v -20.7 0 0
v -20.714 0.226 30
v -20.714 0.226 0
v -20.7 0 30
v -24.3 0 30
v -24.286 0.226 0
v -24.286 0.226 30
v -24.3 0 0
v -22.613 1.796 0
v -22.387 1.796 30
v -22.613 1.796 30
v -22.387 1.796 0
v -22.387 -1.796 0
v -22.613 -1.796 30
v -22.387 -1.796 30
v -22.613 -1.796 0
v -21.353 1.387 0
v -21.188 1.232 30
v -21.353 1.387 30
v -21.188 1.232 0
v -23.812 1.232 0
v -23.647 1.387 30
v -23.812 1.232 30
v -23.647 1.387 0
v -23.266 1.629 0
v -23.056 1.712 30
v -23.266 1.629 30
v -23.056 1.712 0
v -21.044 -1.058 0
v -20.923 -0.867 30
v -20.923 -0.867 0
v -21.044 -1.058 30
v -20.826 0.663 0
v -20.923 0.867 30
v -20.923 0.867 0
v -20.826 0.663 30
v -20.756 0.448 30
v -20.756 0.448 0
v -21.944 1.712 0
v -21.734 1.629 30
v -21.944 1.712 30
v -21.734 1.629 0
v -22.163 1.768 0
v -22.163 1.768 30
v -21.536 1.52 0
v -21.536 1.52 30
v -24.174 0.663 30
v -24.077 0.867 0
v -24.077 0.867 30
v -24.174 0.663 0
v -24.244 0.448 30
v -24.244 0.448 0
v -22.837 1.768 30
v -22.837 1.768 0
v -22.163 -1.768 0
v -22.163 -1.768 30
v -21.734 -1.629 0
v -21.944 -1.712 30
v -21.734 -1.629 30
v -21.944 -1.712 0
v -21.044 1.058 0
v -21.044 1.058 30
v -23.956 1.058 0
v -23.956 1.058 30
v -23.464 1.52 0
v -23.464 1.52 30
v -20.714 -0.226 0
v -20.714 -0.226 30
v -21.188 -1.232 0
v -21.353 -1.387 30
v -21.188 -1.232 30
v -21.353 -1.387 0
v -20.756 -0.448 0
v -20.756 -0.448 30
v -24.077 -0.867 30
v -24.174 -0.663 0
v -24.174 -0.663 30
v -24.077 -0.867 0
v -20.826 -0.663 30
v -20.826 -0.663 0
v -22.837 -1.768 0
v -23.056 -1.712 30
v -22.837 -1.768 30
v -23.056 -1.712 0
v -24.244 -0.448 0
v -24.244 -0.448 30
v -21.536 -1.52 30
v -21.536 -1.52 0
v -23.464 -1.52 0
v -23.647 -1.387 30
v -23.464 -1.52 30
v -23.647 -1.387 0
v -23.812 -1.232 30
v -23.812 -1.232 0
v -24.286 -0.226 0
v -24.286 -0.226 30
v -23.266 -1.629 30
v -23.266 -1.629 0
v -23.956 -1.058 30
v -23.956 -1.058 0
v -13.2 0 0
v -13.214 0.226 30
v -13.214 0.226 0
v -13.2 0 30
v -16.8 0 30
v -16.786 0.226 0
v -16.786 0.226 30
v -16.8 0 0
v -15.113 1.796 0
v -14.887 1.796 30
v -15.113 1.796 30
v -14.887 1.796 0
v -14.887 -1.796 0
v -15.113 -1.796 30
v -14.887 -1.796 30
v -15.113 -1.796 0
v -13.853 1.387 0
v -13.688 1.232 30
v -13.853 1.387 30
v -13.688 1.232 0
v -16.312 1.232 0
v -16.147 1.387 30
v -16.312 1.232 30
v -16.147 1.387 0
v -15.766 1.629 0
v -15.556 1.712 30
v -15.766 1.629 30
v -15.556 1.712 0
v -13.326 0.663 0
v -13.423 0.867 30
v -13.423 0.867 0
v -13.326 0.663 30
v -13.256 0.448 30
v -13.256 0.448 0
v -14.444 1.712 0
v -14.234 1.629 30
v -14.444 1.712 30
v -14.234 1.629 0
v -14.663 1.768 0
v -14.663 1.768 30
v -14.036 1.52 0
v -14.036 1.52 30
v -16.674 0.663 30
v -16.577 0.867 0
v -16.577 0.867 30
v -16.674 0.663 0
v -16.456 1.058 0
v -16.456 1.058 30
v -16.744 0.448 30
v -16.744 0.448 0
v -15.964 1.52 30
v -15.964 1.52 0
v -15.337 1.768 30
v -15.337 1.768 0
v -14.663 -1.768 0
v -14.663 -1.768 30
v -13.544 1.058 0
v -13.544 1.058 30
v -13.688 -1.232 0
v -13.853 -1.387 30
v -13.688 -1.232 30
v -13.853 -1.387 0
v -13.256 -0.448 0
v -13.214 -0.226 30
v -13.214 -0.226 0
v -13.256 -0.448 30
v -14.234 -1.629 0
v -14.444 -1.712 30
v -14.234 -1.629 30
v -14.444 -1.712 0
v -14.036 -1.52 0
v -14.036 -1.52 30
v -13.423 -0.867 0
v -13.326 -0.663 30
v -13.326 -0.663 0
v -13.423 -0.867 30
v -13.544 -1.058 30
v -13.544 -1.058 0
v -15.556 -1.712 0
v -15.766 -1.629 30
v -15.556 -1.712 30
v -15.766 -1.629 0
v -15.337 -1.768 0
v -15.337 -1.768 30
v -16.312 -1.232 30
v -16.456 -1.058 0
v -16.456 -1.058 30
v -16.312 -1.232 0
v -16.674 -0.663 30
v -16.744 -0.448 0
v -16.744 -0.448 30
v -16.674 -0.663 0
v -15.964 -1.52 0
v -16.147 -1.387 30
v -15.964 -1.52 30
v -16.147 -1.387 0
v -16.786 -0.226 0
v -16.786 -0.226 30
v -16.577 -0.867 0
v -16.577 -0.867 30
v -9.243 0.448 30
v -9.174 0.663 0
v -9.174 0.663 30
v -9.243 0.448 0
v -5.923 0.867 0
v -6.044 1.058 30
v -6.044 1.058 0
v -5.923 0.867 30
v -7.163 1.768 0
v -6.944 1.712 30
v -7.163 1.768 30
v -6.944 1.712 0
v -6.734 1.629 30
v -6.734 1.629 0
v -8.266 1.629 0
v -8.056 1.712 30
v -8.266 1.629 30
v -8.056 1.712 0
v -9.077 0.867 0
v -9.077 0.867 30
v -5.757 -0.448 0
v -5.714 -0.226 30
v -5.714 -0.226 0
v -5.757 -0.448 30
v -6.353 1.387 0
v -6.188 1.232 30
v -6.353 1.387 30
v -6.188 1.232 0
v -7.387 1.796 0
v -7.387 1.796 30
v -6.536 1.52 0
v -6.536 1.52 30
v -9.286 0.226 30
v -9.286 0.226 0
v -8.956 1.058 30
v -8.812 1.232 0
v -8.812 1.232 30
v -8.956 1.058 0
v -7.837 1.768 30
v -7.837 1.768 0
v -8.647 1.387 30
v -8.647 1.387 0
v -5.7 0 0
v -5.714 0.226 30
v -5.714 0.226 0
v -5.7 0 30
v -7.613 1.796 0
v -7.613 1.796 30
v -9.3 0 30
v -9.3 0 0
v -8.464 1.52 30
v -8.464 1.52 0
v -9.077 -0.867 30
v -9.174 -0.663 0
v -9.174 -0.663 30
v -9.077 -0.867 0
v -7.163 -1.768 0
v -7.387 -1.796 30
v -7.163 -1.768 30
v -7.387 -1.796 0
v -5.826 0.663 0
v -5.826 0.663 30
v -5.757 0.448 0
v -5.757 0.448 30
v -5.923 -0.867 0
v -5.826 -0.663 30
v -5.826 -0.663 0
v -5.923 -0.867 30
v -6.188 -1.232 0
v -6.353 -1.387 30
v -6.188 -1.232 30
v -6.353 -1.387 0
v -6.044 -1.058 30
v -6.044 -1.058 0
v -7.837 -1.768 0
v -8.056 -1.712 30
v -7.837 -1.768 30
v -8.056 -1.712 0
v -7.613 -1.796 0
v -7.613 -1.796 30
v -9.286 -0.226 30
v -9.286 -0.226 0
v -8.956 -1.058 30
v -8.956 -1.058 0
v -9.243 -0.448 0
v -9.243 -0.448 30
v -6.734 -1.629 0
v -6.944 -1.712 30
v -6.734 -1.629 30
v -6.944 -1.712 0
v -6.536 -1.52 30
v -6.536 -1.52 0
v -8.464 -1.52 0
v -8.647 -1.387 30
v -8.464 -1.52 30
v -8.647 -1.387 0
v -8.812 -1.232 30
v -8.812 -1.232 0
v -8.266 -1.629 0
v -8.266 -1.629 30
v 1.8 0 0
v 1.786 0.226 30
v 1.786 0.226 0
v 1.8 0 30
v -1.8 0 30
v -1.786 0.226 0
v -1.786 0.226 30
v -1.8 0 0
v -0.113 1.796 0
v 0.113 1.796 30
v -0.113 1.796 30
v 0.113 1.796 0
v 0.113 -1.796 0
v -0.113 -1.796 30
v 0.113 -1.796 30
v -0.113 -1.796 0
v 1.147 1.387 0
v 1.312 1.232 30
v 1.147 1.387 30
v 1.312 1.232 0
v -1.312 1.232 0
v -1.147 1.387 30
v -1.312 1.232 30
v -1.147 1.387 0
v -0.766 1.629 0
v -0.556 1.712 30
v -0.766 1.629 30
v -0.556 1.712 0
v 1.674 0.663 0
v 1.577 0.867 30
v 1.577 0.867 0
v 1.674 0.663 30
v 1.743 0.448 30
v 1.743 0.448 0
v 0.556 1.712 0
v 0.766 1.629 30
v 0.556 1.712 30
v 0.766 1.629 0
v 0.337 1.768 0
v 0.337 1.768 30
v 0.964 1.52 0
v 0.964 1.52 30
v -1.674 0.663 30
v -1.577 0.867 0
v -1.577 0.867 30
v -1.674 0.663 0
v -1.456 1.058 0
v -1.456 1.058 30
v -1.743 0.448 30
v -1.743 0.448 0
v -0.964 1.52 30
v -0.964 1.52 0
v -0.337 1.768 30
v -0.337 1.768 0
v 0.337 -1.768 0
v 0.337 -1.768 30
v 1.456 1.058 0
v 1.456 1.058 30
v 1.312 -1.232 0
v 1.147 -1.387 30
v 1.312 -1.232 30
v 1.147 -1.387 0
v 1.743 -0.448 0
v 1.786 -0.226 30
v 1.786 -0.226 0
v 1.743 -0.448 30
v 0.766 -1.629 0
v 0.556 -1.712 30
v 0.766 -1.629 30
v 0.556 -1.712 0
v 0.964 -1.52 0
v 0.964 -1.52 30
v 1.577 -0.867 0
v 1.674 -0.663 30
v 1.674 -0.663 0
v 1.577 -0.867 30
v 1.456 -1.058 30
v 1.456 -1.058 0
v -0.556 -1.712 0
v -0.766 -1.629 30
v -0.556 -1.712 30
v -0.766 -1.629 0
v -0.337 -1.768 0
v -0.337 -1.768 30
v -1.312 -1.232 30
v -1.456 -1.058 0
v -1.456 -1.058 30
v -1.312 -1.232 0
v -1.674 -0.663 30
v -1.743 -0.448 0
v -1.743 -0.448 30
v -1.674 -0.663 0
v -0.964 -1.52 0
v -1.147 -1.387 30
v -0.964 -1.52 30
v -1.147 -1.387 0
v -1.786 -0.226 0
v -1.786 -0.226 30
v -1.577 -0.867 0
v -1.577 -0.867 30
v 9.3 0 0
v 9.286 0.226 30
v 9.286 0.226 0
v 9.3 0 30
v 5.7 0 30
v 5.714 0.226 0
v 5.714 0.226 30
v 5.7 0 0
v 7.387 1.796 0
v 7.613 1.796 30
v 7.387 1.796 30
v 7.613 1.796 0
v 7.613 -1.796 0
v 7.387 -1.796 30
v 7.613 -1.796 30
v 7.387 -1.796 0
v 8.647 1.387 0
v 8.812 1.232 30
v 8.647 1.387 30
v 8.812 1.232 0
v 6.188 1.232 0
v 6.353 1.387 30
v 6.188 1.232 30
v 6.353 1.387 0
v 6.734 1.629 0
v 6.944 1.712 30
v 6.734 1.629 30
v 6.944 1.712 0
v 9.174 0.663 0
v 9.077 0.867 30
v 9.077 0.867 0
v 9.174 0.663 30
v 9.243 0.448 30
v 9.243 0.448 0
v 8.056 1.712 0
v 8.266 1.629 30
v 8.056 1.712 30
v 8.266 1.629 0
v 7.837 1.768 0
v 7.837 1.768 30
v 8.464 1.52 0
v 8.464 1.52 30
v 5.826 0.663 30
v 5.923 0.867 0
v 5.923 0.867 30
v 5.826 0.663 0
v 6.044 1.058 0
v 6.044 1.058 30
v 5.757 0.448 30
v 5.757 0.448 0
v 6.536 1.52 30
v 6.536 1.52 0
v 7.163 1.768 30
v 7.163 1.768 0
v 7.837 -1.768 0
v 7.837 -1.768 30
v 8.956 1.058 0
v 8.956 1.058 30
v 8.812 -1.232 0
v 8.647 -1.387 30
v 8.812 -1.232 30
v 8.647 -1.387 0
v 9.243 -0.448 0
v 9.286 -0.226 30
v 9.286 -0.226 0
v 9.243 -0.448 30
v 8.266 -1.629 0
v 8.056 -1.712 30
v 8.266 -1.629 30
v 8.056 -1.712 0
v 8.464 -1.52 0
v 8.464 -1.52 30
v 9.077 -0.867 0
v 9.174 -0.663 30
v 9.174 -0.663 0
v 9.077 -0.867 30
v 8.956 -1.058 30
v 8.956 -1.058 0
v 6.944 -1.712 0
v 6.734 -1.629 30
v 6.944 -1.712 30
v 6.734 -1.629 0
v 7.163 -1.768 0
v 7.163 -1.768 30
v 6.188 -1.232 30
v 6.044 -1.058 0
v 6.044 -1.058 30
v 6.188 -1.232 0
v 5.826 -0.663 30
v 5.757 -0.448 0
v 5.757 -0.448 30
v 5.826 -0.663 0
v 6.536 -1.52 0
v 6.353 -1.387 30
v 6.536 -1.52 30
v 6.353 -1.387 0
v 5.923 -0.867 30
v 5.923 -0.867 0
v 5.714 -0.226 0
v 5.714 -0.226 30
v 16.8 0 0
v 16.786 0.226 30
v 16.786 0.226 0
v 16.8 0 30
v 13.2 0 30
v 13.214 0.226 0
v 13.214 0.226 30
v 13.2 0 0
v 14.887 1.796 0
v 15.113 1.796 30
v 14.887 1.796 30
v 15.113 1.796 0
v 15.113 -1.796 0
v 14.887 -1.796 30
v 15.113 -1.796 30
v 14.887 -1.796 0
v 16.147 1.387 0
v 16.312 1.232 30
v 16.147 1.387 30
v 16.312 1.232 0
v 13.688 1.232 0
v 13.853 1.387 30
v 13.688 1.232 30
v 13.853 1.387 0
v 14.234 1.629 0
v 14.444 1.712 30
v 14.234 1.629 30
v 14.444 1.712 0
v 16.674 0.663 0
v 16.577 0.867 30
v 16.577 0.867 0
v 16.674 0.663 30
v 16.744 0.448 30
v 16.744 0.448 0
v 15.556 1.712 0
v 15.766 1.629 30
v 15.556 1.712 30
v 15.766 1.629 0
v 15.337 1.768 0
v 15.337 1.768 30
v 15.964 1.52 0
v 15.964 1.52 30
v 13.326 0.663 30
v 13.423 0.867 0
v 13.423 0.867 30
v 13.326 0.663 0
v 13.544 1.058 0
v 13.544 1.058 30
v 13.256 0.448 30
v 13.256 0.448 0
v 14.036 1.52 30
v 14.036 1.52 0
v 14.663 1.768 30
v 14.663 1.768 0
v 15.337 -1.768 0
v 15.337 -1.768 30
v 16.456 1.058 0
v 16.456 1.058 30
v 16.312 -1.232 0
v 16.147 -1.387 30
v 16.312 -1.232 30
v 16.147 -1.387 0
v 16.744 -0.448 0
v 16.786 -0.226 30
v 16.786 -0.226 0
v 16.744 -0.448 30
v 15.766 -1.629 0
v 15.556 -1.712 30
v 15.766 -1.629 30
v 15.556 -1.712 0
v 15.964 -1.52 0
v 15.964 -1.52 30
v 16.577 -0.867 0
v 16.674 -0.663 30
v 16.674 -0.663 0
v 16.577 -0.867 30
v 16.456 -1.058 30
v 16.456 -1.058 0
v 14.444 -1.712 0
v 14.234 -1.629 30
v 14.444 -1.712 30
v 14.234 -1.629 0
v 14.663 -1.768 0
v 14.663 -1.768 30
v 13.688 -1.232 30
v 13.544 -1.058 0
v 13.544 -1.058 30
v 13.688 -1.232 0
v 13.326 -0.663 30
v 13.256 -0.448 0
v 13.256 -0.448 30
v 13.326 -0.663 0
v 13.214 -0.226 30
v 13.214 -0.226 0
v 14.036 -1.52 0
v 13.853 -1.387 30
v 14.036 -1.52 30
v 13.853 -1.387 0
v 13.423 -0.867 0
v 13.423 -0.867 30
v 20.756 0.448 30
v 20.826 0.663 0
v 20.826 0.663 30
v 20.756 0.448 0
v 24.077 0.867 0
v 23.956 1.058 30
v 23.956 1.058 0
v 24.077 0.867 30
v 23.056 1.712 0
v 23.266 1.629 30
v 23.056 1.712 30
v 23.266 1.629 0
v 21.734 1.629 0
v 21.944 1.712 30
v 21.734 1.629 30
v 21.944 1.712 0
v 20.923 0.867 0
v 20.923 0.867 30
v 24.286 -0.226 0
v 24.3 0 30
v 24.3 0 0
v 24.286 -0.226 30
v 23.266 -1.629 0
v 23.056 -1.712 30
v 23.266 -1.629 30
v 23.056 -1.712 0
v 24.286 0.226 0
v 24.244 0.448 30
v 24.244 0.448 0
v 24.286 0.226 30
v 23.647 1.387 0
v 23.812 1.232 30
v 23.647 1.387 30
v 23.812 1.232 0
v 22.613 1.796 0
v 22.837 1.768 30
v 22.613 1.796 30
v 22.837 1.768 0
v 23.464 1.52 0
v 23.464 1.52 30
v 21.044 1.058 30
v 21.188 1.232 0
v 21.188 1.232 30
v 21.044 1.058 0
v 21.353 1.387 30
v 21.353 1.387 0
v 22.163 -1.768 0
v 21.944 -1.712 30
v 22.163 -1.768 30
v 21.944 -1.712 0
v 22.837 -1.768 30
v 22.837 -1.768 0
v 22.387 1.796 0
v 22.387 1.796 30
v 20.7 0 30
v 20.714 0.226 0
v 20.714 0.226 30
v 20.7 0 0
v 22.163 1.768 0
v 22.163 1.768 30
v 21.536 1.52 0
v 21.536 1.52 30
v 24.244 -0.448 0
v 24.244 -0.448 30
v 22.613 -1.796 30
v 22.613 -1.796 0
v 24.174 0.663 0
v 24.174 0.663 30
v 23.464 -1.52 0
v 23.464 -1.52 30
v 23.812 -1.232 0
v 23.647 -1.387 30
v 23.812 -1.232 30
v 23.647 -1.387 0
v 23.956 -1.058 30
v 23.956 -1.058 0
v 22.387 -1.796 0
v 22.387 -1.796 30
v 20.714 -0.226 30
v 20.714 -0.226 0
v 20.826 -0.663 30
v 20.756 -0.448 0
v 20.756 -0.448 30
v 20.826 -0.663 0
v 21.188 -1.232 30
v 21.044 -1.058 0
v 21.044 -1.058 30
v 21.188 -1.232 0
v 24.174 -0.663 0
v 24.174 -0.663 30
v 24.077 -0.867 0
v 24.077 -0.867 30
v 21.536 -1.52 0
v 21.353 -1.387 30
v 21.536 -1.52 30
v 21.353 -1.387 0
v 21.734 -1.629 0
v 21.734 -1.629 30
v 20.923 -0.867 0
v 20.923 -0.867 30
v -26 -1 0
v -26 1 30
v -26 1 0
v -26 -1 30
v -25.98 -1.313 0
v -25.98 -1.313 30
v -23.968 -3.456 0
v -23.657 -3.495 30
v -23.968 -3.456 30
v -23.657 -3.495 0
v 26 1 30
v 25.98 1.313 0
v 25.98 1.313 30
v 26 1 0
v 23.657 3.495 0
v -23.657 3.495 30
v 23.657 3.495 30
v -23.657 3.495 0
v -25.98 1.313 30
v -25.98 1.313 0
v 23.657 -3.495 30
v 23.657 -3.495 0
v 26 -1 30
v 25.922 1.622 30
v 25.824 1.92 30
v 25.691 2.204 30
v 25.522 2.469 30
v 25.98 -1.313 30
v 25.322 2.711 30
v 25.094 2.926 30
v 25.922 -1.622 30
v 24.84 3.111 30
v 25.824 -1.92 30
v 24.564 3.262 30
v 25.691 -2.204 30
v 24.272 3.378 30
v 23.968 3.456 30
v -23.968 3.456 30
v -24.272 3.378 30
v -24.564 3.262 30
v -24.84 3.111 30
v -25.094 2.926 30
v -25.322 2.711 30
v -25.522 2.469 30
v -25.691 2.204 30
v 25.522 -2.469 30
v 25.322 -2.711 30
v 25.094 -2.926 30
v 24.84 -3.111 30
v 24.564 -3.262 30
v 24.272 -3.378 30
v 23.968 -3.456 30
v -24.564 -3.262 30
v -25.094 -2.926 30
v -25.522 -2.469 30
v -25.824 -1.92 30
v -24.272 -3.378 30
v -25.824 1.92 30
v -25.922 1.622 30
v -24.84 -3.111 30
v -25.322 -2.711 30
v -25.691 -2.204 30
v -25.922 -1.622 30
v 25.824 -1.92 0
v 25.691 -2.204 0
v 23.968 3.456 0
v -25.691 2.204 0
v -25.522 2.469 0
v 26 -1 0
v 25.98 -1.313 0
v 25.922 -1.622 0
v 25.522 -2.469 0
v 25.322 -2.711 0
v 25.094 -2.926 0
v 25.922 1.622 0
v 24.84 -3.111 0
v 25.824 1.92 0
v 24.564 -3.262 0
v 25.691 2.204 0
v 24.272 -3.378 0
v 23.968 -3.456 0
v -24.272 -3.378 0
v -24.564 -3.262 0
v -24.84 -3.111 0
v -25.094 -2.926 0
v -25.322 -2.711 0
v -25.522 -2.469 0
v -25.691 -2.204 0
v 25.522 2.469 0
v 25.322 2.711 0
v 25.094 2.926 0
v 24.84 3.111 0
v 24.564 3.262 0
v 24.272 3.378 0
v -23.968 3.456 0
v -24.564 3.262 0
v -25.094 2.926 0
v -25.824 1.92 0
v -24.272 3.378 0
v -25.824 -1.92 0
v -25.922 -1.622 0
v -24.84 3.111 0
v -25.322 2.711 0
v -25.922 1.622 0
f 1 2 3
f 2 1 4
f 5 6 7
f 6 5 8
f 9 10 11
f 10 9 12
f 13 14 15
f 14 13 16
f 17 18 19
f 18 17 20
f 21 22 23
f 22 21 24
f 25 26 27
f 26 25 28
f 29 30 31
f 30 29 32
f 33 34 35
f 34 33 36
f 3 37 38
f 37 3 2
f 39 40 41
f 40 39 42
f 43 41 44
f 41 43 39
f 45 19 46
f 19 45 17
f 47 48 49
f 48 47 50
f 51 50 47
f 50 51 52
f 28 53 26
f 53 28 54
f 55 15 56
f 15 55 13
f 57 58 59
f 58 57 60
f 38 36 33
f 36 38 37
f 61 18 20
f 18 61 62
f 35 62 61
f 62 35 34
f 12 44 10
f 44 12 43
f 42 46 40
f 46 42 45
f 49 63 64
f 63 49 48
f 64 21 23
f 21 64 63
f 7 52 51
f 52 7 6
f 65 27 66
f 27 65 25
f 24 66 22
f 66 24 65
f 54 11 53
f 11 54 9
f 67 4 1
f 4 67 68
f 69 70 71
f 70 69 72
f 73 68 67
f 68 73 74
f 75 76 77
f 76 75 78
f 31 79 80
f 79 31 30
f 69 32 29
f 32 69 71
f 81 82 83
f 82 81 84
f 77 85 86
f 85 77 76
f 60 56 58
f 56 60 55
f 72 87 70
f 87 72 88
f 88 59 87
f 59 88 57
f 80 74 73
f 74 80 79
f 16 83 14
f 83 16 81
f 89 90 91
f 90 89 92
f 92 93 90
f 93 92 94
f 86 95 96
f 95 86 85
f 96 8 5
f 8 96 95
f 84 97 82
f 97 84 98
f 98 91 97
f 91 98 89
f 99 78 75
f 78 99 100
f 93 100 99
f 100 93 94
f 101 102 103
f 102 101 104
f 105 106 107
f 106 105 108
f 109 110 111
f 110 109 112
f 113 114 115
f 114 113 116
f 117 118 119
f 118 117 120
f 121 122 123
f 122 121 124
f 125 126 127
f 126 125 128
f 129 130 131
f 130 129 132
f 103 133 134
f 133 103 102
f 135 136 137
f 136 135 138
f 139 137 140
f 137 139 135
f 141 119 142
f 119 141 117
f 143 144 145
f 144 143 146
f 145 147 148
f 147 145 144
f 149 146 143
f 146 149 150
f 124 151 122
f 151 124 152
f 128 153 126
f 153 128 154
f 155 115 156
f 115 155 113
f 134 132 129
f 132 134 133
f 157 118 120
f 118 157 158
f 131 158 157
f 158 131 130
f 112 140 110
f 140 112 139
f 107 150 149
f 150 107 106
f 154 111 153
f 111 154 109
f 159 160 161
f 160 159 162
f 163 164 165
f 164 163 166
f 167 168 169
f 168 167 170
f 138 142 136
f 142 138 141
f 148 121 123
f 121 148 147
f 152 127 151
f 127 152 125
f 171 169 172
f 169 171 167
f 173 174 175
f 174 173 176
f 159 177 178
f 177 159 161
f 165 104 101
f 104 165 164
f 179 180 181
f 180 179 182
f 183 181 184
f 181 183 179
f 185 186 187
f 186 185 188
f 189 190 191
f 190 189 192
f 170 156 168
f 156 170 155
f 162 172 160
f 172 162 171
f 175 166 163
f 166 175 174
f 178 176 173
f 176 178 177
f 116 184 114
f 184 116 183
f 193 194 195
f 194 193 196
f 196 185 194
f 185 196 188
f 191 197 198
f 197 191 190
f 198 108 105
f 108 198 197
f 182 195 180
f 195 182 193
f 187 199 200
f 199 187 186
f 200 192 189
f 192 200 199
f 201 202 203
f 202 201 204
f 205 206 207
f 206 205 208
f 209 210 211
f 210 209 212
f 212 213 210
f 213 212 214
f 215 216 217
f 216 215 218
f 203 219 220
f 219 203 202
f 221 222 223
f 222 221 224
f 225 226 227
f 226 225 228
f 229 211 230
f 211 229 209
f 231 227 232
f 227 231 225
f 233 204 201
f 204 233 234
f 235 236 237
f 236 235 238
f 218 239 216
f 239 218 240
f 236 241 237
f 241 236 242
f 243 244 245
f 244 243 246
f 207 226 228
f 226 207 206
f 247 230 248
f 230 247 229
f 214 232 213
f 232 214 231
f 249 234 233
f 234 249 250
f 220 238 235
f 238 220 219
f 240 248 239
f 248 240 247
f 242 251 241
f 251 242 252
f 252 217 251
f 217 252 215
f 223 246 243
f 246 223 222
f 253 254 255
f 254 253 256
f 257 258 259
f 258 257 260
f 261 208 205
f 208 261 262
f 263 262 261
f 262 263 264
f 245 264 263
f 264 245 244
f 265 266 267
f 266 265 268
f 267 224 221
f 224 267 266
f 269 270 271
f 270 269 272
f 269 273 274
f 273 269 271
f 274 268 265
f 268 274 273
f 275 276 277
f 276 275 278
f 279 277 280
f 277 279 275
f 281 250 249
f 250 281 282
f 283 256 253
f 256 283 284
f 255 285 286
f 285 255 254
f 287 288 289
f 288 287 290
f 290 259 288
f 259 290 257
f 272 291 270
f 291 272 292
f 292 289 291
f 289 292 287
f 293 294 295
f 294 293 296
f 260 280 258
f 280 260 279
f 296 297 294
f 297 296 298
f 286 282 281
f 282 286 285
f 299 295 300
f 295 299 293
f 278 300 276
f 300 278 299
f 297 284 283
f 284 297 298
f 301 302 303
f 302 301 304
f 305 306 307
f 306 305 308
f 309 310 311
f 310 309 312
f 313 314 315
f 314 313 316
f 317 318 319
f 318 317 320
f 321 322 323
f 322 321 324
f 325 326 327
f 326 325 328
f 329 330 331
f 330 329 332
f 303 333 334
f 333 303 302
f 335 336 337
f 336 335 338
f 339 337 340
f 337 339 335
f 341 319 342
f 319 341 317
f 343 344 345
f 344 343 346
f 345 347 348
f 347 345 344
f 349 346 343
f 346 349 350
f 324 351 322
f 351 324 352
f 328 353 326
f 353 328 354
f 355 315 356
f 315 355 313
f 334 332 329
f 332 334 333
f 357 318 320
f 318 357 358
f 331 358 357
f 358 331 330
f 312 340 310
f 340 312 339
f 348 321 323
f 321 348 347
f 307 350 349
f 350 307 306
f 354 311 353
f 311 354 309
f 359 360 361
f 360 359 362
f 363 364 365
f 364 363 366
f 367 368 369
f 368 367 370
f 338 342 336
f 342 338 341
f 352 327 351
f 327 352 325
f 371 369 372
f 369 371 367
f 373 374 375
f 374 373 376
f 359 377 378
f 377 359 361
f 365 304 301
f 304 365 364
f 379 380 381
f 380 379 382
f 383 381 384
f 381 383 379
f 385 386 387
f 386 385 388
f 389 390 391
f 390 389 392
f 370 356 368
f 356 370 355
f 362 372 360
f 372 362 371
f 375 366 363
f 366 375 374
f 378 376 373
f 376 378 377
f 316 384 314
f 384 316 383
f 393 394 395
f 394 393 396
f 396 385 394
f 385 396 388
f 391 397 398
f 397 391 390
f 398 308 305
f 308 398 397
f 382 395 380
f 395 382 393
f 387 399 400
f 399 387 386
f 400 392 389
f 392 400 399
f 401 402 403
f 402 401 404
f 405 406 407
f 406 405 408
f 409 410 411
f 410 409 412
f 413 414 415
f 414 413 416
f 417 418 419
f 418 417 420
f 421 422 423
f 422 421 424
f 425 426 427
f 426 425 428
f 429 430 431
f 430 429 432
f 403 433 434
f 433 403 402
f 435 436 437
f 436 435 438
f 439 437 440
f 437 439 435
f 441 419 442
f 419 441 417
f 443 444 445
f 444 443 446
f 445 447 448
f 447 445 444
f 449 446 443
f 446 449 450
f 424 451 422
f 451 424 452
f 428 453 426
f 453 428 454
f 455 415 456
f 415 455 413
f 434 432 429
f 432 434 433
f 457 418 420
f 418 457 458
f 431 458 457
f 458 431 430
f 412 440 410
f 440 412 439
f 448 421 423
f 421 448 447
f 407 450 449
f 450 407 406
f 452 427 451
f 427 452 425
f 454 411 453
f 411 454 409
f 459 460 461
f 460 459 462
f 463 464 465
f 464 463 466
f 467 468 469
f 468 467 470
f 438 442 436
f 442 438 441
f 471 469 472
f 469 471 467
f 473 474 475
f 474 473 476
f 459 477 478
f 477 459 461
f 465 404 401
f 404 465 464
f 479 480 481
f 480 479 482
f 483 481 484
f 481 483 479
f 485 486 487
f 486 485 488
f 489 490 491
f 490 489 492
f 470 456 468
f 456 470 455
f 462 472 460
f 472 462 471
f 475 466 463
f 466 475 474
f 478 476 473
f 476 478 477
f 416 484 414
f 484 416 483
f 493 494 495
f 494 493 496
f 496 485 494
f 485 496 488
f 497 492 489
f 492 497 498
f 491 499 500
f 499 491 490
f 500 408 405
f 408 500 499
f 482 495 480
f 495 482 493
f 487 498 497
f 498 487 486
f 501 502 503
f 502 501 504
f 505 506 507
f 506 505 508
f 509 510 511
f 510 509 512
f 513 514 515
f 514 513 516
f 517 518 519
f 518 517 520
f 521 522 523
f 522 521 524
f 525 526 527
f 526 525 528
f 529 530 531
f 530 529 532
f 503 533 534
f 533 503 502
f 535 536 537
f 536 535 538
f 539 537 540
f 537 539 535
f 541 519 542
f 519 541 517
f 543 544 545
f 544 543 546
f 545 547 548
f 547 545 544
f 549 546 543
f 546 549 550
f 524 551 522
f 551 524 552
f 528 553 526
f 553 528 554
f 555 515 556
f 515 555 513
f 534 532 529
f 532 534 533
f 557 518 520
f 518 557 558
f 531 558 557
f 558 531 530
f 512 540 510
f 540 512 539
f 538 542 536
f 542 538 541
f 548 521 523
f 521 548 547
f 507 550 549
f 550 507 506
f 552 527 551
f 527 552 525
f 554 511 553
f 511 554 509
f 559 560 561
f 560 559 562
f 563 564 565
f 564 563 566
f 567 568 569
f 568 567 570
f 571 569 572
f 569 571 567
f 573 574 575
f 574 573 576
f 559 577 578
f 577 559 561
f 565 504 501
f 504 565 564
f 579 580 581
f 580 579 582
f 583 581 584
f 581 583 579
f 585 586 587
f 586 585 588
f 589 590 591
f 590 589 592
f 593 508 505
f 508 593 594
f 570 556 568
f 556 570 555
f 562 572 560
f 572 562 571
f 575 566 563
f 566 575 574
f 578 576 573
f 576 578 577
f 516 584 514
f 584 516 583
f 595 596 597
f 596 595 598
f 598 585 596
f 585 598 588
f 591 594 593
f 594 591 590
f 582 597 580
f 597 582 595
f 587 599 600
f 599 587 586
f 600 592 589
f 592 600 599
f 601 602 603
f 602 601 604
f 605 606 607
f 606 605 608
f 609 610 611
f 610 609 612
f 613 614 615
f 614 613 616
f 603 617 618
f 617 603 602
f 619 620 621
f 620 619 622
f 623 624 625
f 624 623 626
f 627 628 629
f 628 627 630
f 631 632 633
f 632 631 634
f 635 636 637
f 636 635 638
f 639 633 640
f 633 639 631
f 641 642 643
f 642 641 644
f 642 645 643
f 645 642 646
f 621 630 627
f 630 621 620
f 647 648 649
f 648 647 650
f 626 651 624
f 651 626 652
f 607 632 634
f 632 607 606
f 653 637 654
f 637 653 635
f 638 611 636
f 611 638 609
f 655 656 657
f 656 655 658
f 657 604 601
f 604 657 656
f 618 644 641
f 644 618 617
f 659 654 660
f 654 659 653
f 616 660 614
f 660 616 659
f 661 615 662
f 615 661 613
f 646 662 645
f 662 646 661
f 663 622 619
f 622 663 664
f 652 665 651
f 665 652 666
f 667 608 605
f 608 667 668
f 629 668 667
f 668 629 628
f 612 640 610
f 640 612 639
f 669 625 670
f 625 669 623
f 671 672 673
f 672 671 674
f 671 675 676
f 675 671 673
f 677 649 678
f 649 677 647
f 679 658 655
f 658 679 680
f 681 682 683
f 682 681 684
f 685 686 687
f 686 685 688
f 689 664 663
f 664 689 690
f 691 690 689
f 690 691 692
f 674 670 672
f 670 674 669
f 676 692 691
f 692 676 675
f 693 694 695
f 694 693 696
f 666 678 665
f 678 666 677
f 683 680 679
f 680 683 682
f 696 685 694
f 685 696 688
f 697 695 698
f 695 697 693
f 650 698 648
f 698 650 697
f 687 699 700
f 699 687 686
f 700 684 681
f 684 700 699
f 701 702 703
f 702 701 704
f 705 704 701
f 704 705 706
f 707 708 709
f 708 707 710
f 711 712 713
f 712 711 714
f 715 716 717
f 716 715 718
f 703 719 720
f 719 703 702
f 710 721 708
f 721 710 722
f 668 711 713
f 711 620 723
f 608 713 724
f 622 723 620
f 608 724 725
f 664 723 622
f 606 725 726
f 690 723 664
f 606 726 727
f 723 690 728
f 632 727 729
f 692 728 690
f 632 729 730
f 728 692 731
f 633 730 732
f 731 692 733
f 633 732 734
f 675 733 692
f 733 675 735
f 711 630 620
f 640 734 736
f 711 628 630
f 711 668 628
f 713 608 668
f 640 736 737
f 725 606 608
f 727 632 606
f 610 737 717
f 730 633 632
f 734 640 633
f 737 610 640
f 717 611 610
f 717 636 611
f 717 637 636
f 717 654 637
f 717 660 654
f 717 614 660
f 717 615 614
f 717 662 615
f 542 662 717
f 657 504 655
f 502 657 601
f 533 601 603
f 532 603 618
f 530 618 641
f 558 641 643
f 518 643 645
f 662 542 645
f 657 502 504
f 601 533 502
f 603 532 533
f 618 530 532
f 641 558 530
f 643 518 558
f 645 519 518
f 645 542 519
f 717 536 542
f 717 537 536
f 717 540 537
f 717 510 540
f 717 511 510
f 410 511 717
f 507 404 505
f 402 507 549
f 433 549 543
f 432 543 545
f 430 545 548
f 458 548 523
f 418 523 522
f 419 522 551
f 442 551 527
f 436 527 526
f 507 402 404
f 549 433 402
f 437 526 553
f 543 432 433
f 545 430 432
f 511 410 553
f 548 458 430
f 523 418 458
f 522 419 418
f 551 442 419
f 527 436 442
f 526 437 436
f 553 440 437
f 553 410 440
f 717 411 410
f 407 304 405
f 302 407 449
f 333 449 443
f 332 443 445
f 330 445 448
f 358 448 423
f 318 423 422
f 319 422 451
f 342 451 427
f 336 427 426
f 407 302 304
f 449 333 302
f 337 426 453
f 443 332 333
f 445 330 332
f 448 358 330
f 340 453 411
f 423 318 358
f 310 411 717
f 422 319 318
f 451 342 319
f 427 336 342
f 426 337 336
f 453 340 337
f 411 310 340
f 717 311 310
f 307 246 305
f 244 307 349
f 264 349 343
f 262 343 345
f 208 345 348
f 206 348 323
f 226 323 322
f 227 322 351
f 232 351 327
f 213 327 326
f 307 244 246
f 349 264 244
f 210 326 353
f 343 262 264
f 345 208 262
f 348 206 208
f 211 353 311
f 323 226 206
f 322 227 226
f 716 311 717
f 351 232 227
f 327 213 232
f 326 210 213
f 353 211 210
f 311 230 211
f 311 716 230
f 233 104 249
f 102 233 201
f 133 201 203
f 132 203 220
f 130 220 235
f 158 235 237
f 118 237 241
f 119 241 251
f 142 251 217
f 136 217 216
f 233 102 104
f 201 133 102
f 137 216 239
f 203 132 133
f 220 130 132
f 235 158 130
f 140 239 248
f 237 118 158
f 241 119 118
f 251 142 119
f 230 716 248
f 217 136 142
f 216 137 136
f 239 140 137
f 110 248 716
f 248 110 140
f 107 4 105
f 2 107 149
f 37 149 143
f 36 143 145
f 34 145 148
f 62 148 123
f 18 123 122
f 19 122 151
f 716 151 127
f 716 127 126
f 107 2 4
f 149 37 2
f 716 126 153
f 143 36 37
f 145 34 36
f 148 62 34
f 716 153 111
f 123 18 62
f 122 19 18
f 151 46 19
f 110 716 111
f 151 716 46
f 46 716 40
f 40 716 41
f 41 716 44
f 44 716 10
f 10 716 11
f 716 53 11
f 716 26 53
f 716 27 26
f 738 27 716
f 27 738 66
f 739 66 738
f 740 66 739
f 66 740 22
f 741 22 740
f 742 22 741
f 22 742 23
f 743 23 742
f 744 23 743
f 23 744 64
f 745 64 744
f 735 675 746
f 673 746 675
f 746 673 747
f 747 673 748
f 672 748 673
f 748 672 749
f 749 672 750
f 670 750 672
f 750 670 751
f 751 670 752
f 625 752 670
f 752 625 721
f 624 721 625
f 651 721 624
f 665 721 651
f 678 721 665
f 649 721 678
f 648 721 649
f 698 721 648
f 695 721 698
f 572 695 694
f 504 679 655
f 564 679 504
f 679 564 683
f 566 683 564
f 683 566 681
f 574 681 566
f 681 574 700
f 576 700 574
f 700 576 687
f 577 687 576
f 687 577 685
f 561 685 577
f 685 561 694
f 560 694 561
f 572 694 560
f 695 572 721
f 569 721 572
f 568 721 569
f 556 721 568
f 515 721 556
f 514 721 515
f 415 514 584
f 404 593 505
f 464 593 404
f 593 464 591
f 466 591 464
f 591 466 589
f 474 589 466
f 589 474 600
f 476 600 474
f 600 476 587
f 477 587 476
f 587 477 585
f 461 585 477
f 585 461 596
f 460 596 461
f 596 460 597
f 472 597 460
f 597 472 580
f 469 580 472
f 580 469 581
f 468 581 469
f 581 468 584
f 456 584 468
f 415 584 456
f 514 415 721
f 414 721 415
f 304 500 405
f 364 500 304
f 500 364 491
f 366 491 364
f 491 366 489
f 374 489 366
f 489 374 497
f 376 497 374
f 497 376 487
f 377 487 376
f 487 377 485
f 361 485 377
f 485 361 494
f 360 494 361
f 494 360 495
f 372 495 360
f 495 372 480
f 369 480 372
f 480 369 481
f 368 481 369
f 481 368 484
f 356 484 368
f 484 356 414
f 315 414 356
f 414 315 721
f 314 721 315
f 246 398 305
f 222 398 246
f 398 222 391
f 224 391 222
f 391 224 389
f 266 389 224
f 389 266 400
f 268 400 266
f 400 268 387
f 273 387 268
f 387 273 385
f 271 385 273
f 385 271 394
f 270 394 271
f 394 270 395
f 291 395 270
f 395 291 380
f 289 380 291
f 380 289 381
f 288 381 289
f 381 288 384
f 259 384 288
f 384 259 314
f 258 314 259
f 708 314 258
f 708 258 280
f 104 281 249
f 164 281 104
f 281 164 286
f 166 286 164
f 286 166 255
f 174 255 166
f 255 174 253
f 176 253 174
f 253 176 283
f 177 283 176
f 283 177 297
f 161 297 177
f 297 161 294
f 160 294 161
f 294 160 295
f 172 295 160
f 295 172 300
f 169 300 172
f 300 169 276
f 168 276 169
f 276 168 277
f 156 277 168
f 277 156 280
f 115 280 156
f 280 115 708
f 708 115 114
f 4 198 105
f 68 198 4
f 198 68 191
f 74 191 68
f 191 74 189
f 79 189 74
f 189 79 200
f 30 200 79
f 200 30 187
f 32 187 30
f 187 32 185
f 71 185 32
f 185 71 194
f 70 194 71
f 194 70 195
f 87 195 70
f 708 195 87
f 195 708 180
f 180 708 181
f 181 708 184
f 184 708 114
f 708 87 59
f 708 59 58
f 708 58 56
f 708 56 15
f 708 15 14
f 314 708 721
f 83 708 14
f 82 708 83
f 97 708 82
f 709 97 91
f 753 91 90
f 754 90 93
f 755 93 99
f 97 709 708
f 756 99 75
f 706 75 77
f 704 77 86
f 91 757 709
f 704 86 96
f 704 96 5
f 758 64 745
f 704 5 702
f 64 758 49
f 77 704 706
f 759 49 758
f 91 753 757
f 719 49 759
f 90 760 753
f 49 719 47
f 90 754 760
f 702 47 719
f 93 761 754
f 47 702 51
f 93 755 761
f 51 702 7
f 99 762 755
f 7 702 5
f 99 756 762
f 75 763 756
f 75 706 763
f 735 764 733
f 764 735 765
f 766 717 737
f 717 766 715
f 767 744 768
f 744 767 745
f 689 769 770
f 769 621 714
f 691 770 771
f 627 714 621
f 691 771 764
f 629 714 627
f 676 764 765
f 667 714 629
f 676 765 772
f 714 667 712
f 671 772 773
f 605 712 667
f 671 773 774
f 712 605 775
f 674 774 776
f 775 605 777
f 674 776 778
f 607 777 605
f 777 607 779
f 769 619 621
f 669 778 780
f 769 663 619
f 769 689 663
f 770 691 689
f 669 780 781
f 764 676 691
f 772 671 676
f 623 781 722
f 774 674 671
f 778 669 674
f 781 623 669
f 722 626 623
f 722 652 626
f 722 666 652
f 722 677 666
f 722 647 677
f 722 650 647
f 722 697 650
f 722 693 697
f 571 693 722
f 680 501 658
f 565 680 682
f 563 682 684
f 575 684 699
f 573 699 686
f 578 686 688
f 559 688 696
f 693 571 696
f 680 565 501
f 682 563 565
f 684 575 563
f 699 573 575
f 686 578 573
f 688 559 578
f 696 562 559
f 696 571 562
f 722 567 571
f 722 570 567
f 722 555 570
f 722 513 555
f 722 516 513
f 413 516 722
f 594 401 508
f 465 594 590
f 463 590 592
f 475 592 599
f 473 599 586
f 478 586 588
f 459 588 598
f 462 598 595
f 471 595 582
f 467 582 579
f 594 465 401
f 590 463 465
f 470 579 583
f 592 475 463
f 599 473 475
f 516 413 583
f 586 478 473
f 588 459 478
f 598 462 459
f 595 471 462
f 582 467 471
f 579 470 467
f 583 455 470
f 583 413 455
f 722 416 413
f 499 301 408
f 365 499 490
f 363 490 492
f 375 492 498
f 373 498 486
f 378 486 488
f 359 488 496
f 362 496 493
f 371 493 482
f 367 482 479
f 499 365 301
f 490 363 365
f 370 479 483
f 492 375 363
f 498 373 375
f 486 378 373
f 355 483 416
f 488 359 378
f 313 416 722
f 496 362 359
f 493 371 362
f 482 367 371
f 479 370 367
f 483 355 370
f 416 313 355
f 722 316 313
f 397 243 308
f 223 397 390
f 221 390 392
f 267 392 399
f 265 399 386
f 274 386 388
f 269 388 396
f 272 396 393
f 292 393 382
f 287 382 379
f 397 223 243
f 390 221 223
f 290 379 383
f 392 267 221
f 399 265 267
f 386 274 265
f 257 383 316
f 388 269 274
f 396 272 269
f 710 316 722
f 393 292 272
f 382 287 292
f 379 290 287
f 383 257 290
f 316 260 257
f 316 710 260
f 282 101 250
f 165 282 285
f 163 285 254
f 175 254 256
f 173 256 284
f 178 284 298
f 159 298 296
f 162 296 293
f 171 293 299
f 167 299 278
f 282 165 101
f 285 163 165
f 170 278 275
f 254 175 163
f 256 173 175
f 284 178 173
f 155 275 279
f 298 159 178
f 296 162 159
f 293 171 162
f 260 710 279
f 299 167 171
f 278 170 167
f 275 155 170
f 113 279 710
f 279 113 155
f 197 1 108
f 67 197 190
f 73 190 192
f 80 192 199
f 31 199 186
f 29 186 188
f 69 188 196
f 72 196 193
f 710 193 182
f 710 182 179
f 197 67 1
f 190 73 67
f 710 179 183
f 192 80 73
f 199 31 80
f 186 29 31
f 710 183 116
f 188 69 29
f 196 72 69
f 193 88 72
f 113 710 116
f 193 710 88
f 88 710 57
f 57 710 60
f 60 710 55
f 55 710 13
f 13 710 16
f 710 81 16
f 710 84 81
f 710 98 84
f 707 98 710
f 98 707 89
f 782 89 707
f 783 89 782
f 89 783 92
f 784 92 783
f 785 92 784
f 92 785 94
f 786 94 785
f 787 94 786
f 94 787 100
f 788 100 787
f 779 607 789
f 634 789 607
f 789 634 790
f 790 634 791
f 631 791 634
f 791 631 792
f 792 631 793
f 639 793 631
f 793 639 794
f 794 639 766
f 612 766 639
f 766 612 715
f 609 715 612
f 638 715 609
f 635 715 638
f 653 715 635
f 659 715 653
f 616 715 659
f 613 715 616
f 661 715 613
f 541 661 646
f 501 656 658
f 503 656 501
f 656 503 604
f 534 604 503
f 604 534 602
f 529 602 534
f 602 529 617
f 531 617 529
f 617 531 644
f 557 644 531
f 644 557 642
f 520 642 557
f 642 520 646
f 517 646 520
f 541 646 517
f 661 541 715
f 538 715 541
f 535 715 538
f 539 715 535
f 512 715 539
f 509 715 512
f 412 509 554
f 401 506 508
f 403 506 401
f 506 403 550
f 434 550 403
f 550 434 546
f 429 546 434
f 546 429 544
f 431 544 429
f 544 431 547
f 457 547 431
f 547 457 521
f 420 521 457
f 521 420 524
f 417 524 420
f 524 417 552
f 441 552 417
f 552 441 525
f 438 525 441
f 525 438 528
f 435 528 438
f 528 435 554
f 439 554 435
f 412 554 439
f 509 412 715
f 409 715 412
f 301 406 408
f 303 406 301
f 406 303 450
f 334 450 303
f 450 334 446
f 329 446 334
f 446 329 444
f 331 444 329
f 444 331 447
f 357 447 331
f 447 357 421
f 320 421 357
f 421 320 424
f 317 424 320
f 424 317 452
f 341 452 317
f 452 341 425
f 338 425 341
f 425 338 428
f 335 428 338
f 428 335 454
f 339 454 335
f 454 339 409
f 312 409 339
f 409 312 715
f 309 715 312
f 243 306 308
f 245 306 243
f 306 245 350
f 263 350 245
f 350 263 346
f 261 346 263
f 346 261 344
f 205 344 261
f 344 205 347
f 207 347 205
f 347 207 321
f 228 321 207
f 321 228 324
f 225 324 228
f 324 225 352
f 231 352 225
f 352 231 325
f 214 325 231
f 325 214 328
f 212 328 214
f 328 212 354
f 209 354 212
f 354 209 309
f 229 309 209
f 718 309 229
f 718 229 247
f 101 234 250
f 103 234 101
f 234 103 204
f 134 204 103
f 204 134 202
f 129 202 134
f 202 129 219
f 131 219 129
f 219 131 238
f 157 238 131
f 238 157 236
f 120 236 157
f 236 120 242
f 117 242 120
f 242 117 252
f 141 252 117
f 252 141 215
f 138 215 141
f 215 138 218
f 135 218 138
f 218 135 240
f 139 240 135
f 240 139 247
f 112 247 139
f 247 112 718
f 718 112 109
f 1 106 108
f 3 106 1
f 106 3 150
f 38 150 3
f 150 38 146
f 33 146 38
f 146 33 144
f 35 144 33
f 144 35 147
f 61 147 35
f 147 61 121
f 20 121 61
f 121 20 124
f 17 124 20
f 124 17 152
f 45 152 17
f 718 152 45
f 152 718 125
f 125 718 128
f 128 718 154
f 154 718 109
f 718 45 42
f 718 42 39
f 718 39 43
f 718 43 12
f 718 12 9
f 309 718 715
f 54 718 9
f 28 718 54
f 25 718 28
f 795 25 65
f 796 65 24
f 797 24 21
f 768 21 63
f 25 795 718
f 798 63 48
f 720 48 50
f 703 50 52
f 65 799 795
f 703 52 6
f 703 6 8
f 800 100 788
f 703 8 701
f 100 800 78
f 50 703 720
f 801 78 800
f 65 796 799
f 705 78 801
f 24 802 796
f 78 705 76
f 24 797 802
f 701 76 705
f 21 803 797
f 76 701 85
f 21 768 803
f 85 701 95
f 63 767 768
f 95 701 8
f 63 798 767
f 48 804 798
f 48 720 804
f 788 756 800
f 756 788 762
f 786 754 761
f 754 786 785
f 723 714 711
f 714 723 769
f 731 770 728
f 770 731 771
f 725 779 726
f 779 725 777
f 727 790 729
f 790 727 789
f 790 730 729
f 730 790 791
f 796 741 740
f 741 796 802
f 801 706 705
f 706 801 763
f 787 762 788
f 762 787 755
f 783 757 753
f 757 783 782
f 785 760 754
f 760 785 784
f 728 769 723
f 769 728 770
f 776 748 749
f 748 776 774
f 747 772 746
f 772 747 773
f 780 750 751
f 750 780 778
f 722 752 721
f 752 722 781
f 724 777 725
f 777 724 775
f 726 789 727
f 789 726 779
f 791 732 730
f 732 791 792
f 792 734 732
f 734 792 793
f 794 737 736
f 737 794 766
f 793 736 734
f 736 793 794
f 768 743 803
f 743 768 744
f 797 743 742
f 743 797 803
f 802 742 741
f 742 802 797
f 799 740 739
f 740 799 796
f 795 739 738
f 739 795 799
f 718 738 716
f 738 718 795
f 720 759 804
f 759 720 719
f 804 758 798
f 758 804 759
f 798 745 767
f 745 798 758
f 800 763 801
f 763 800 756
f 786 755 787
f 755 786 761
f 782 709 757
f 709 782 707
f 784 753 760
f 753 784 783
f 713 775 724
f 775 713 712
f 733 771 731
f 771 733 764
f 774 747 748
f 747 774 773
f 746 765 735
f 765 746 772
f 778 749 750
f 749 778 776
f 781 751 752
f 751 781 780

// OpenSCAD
$fn = 50;


difference() {
	union() {
		translate(v = [0, 0, 0]) {
			rotate(a = [0, 0, 0]) {
				hull() {
					translate(v = [-23.5000000000, 1.0000000000, 0]) {
						rotate(a = [0, 0, 0]) {
							translate(v = [0, 0, 0]) {
								rotate(a = [0, 0, 0]) {
									cylinder(h = 30, r = 2.5000000000);
								}
							}
						}
					}
					translate(v = [23.5000000000, 1.0000000000, 0]) {
						rotate(a = [0, 0, 0]) {
							translate(v = [0, 0, 0]) {
								rotate(a = [0, 0, 0]) {
									cylinder(h = 30, r = 2.5000000000);
								}
							}
						}
					}
					translate(v = [-23.5000000000, -1.0000000000, 0]) {
						rotate(a = [0, 0, 0]) {
							translate(v = [0, 0, 0]) {
								rotate(a = [0, 0, 0]) {
									cylinder(h = 30, r = 2.5000000000);
								}
							}
						}
					}
					translate(v = [23.5000000000, -1.0000000000, 0]) {
						rotate(a = [0, 0, 0]) {
							translate(v = [0, 0, 0]) {
								rotate(a = [0, 0, 0]) {
									cylinder(h = 30, r = 2.5000000000);
								}
							}
						}
					}
				}
			}
		}
	}
	union() {
		translate(v = [-22.5000000000, 0.0000000000, 0]) {
			rotate(a = [0, 0, 0]) {
				translate(v = [0, 0, -50]) {
					rotate(a = [0, 0, 0]) {
						cylinder(h = 100, r = 1.8000000000);
					}
				}
			}
		}
		translate(v = [-15.0000000000, 0.0000000000, 0]) {
			rotate(a = [0, 0, 0]) {
				translate(v = [0, 0, -50]) {
					rotate(a = [0, 0, 0]) {
						cylinder(h = 100, r = 1.8000000000);
					}
				}
			}
		}
		translate(v = [-7.5000000000, 0.0000000000, 0]) {
			rotate(a = [0, 0, 0]) {
				translate(v = [0, 0, -50]) {
					rotate(a = [0, 0, 0]) {
						cylinder(h = 100, r = 1.8000000000);
					}
				}
			}
		}
		translate(v = [0.0000000000, 0.0000000000, 0]) {
			rotate(a = [0, 0, 0]) {
				translate(v = [0, 0, -50]) {
					rotate(a = [0, 0, 0]) {
						cylinder(h = 100, r = 1.8000000000);
					}
				}
			}
		}
		translate(v = [7.5000000000, 0.0000000000, 0]) {
			rotate(a = [0, 0, 0]) {
				translate(v = [0, 0, -50]) {
					rotate(a = [0, 0, 0]) {
						cylinder(h = 100, r = 1.8000000000);
					}
				}
			}
		}
		translate(v = [15.0000000000, 0.0000000000, 0]) {
			rotate(a = [0, 0, 0]) {
				translate(v = [0, 0, -50]) {
					rotate(a = [0, 0, 0]) {
						cylinder(h = 100, r = 1.8000000000);
					}
				}
			}
		}
		translate(v = [22.5000000000, 0.0000000000, 0]) {
			rotate(a = [0, 0, 0]) {
				translate(v = [0, 0, -50]) {
					rotate(a = [0, 0, 0]) {
						cylinder(h = 100, r = 1.8000000000);
					}
				}
			}
		}
	}
}
